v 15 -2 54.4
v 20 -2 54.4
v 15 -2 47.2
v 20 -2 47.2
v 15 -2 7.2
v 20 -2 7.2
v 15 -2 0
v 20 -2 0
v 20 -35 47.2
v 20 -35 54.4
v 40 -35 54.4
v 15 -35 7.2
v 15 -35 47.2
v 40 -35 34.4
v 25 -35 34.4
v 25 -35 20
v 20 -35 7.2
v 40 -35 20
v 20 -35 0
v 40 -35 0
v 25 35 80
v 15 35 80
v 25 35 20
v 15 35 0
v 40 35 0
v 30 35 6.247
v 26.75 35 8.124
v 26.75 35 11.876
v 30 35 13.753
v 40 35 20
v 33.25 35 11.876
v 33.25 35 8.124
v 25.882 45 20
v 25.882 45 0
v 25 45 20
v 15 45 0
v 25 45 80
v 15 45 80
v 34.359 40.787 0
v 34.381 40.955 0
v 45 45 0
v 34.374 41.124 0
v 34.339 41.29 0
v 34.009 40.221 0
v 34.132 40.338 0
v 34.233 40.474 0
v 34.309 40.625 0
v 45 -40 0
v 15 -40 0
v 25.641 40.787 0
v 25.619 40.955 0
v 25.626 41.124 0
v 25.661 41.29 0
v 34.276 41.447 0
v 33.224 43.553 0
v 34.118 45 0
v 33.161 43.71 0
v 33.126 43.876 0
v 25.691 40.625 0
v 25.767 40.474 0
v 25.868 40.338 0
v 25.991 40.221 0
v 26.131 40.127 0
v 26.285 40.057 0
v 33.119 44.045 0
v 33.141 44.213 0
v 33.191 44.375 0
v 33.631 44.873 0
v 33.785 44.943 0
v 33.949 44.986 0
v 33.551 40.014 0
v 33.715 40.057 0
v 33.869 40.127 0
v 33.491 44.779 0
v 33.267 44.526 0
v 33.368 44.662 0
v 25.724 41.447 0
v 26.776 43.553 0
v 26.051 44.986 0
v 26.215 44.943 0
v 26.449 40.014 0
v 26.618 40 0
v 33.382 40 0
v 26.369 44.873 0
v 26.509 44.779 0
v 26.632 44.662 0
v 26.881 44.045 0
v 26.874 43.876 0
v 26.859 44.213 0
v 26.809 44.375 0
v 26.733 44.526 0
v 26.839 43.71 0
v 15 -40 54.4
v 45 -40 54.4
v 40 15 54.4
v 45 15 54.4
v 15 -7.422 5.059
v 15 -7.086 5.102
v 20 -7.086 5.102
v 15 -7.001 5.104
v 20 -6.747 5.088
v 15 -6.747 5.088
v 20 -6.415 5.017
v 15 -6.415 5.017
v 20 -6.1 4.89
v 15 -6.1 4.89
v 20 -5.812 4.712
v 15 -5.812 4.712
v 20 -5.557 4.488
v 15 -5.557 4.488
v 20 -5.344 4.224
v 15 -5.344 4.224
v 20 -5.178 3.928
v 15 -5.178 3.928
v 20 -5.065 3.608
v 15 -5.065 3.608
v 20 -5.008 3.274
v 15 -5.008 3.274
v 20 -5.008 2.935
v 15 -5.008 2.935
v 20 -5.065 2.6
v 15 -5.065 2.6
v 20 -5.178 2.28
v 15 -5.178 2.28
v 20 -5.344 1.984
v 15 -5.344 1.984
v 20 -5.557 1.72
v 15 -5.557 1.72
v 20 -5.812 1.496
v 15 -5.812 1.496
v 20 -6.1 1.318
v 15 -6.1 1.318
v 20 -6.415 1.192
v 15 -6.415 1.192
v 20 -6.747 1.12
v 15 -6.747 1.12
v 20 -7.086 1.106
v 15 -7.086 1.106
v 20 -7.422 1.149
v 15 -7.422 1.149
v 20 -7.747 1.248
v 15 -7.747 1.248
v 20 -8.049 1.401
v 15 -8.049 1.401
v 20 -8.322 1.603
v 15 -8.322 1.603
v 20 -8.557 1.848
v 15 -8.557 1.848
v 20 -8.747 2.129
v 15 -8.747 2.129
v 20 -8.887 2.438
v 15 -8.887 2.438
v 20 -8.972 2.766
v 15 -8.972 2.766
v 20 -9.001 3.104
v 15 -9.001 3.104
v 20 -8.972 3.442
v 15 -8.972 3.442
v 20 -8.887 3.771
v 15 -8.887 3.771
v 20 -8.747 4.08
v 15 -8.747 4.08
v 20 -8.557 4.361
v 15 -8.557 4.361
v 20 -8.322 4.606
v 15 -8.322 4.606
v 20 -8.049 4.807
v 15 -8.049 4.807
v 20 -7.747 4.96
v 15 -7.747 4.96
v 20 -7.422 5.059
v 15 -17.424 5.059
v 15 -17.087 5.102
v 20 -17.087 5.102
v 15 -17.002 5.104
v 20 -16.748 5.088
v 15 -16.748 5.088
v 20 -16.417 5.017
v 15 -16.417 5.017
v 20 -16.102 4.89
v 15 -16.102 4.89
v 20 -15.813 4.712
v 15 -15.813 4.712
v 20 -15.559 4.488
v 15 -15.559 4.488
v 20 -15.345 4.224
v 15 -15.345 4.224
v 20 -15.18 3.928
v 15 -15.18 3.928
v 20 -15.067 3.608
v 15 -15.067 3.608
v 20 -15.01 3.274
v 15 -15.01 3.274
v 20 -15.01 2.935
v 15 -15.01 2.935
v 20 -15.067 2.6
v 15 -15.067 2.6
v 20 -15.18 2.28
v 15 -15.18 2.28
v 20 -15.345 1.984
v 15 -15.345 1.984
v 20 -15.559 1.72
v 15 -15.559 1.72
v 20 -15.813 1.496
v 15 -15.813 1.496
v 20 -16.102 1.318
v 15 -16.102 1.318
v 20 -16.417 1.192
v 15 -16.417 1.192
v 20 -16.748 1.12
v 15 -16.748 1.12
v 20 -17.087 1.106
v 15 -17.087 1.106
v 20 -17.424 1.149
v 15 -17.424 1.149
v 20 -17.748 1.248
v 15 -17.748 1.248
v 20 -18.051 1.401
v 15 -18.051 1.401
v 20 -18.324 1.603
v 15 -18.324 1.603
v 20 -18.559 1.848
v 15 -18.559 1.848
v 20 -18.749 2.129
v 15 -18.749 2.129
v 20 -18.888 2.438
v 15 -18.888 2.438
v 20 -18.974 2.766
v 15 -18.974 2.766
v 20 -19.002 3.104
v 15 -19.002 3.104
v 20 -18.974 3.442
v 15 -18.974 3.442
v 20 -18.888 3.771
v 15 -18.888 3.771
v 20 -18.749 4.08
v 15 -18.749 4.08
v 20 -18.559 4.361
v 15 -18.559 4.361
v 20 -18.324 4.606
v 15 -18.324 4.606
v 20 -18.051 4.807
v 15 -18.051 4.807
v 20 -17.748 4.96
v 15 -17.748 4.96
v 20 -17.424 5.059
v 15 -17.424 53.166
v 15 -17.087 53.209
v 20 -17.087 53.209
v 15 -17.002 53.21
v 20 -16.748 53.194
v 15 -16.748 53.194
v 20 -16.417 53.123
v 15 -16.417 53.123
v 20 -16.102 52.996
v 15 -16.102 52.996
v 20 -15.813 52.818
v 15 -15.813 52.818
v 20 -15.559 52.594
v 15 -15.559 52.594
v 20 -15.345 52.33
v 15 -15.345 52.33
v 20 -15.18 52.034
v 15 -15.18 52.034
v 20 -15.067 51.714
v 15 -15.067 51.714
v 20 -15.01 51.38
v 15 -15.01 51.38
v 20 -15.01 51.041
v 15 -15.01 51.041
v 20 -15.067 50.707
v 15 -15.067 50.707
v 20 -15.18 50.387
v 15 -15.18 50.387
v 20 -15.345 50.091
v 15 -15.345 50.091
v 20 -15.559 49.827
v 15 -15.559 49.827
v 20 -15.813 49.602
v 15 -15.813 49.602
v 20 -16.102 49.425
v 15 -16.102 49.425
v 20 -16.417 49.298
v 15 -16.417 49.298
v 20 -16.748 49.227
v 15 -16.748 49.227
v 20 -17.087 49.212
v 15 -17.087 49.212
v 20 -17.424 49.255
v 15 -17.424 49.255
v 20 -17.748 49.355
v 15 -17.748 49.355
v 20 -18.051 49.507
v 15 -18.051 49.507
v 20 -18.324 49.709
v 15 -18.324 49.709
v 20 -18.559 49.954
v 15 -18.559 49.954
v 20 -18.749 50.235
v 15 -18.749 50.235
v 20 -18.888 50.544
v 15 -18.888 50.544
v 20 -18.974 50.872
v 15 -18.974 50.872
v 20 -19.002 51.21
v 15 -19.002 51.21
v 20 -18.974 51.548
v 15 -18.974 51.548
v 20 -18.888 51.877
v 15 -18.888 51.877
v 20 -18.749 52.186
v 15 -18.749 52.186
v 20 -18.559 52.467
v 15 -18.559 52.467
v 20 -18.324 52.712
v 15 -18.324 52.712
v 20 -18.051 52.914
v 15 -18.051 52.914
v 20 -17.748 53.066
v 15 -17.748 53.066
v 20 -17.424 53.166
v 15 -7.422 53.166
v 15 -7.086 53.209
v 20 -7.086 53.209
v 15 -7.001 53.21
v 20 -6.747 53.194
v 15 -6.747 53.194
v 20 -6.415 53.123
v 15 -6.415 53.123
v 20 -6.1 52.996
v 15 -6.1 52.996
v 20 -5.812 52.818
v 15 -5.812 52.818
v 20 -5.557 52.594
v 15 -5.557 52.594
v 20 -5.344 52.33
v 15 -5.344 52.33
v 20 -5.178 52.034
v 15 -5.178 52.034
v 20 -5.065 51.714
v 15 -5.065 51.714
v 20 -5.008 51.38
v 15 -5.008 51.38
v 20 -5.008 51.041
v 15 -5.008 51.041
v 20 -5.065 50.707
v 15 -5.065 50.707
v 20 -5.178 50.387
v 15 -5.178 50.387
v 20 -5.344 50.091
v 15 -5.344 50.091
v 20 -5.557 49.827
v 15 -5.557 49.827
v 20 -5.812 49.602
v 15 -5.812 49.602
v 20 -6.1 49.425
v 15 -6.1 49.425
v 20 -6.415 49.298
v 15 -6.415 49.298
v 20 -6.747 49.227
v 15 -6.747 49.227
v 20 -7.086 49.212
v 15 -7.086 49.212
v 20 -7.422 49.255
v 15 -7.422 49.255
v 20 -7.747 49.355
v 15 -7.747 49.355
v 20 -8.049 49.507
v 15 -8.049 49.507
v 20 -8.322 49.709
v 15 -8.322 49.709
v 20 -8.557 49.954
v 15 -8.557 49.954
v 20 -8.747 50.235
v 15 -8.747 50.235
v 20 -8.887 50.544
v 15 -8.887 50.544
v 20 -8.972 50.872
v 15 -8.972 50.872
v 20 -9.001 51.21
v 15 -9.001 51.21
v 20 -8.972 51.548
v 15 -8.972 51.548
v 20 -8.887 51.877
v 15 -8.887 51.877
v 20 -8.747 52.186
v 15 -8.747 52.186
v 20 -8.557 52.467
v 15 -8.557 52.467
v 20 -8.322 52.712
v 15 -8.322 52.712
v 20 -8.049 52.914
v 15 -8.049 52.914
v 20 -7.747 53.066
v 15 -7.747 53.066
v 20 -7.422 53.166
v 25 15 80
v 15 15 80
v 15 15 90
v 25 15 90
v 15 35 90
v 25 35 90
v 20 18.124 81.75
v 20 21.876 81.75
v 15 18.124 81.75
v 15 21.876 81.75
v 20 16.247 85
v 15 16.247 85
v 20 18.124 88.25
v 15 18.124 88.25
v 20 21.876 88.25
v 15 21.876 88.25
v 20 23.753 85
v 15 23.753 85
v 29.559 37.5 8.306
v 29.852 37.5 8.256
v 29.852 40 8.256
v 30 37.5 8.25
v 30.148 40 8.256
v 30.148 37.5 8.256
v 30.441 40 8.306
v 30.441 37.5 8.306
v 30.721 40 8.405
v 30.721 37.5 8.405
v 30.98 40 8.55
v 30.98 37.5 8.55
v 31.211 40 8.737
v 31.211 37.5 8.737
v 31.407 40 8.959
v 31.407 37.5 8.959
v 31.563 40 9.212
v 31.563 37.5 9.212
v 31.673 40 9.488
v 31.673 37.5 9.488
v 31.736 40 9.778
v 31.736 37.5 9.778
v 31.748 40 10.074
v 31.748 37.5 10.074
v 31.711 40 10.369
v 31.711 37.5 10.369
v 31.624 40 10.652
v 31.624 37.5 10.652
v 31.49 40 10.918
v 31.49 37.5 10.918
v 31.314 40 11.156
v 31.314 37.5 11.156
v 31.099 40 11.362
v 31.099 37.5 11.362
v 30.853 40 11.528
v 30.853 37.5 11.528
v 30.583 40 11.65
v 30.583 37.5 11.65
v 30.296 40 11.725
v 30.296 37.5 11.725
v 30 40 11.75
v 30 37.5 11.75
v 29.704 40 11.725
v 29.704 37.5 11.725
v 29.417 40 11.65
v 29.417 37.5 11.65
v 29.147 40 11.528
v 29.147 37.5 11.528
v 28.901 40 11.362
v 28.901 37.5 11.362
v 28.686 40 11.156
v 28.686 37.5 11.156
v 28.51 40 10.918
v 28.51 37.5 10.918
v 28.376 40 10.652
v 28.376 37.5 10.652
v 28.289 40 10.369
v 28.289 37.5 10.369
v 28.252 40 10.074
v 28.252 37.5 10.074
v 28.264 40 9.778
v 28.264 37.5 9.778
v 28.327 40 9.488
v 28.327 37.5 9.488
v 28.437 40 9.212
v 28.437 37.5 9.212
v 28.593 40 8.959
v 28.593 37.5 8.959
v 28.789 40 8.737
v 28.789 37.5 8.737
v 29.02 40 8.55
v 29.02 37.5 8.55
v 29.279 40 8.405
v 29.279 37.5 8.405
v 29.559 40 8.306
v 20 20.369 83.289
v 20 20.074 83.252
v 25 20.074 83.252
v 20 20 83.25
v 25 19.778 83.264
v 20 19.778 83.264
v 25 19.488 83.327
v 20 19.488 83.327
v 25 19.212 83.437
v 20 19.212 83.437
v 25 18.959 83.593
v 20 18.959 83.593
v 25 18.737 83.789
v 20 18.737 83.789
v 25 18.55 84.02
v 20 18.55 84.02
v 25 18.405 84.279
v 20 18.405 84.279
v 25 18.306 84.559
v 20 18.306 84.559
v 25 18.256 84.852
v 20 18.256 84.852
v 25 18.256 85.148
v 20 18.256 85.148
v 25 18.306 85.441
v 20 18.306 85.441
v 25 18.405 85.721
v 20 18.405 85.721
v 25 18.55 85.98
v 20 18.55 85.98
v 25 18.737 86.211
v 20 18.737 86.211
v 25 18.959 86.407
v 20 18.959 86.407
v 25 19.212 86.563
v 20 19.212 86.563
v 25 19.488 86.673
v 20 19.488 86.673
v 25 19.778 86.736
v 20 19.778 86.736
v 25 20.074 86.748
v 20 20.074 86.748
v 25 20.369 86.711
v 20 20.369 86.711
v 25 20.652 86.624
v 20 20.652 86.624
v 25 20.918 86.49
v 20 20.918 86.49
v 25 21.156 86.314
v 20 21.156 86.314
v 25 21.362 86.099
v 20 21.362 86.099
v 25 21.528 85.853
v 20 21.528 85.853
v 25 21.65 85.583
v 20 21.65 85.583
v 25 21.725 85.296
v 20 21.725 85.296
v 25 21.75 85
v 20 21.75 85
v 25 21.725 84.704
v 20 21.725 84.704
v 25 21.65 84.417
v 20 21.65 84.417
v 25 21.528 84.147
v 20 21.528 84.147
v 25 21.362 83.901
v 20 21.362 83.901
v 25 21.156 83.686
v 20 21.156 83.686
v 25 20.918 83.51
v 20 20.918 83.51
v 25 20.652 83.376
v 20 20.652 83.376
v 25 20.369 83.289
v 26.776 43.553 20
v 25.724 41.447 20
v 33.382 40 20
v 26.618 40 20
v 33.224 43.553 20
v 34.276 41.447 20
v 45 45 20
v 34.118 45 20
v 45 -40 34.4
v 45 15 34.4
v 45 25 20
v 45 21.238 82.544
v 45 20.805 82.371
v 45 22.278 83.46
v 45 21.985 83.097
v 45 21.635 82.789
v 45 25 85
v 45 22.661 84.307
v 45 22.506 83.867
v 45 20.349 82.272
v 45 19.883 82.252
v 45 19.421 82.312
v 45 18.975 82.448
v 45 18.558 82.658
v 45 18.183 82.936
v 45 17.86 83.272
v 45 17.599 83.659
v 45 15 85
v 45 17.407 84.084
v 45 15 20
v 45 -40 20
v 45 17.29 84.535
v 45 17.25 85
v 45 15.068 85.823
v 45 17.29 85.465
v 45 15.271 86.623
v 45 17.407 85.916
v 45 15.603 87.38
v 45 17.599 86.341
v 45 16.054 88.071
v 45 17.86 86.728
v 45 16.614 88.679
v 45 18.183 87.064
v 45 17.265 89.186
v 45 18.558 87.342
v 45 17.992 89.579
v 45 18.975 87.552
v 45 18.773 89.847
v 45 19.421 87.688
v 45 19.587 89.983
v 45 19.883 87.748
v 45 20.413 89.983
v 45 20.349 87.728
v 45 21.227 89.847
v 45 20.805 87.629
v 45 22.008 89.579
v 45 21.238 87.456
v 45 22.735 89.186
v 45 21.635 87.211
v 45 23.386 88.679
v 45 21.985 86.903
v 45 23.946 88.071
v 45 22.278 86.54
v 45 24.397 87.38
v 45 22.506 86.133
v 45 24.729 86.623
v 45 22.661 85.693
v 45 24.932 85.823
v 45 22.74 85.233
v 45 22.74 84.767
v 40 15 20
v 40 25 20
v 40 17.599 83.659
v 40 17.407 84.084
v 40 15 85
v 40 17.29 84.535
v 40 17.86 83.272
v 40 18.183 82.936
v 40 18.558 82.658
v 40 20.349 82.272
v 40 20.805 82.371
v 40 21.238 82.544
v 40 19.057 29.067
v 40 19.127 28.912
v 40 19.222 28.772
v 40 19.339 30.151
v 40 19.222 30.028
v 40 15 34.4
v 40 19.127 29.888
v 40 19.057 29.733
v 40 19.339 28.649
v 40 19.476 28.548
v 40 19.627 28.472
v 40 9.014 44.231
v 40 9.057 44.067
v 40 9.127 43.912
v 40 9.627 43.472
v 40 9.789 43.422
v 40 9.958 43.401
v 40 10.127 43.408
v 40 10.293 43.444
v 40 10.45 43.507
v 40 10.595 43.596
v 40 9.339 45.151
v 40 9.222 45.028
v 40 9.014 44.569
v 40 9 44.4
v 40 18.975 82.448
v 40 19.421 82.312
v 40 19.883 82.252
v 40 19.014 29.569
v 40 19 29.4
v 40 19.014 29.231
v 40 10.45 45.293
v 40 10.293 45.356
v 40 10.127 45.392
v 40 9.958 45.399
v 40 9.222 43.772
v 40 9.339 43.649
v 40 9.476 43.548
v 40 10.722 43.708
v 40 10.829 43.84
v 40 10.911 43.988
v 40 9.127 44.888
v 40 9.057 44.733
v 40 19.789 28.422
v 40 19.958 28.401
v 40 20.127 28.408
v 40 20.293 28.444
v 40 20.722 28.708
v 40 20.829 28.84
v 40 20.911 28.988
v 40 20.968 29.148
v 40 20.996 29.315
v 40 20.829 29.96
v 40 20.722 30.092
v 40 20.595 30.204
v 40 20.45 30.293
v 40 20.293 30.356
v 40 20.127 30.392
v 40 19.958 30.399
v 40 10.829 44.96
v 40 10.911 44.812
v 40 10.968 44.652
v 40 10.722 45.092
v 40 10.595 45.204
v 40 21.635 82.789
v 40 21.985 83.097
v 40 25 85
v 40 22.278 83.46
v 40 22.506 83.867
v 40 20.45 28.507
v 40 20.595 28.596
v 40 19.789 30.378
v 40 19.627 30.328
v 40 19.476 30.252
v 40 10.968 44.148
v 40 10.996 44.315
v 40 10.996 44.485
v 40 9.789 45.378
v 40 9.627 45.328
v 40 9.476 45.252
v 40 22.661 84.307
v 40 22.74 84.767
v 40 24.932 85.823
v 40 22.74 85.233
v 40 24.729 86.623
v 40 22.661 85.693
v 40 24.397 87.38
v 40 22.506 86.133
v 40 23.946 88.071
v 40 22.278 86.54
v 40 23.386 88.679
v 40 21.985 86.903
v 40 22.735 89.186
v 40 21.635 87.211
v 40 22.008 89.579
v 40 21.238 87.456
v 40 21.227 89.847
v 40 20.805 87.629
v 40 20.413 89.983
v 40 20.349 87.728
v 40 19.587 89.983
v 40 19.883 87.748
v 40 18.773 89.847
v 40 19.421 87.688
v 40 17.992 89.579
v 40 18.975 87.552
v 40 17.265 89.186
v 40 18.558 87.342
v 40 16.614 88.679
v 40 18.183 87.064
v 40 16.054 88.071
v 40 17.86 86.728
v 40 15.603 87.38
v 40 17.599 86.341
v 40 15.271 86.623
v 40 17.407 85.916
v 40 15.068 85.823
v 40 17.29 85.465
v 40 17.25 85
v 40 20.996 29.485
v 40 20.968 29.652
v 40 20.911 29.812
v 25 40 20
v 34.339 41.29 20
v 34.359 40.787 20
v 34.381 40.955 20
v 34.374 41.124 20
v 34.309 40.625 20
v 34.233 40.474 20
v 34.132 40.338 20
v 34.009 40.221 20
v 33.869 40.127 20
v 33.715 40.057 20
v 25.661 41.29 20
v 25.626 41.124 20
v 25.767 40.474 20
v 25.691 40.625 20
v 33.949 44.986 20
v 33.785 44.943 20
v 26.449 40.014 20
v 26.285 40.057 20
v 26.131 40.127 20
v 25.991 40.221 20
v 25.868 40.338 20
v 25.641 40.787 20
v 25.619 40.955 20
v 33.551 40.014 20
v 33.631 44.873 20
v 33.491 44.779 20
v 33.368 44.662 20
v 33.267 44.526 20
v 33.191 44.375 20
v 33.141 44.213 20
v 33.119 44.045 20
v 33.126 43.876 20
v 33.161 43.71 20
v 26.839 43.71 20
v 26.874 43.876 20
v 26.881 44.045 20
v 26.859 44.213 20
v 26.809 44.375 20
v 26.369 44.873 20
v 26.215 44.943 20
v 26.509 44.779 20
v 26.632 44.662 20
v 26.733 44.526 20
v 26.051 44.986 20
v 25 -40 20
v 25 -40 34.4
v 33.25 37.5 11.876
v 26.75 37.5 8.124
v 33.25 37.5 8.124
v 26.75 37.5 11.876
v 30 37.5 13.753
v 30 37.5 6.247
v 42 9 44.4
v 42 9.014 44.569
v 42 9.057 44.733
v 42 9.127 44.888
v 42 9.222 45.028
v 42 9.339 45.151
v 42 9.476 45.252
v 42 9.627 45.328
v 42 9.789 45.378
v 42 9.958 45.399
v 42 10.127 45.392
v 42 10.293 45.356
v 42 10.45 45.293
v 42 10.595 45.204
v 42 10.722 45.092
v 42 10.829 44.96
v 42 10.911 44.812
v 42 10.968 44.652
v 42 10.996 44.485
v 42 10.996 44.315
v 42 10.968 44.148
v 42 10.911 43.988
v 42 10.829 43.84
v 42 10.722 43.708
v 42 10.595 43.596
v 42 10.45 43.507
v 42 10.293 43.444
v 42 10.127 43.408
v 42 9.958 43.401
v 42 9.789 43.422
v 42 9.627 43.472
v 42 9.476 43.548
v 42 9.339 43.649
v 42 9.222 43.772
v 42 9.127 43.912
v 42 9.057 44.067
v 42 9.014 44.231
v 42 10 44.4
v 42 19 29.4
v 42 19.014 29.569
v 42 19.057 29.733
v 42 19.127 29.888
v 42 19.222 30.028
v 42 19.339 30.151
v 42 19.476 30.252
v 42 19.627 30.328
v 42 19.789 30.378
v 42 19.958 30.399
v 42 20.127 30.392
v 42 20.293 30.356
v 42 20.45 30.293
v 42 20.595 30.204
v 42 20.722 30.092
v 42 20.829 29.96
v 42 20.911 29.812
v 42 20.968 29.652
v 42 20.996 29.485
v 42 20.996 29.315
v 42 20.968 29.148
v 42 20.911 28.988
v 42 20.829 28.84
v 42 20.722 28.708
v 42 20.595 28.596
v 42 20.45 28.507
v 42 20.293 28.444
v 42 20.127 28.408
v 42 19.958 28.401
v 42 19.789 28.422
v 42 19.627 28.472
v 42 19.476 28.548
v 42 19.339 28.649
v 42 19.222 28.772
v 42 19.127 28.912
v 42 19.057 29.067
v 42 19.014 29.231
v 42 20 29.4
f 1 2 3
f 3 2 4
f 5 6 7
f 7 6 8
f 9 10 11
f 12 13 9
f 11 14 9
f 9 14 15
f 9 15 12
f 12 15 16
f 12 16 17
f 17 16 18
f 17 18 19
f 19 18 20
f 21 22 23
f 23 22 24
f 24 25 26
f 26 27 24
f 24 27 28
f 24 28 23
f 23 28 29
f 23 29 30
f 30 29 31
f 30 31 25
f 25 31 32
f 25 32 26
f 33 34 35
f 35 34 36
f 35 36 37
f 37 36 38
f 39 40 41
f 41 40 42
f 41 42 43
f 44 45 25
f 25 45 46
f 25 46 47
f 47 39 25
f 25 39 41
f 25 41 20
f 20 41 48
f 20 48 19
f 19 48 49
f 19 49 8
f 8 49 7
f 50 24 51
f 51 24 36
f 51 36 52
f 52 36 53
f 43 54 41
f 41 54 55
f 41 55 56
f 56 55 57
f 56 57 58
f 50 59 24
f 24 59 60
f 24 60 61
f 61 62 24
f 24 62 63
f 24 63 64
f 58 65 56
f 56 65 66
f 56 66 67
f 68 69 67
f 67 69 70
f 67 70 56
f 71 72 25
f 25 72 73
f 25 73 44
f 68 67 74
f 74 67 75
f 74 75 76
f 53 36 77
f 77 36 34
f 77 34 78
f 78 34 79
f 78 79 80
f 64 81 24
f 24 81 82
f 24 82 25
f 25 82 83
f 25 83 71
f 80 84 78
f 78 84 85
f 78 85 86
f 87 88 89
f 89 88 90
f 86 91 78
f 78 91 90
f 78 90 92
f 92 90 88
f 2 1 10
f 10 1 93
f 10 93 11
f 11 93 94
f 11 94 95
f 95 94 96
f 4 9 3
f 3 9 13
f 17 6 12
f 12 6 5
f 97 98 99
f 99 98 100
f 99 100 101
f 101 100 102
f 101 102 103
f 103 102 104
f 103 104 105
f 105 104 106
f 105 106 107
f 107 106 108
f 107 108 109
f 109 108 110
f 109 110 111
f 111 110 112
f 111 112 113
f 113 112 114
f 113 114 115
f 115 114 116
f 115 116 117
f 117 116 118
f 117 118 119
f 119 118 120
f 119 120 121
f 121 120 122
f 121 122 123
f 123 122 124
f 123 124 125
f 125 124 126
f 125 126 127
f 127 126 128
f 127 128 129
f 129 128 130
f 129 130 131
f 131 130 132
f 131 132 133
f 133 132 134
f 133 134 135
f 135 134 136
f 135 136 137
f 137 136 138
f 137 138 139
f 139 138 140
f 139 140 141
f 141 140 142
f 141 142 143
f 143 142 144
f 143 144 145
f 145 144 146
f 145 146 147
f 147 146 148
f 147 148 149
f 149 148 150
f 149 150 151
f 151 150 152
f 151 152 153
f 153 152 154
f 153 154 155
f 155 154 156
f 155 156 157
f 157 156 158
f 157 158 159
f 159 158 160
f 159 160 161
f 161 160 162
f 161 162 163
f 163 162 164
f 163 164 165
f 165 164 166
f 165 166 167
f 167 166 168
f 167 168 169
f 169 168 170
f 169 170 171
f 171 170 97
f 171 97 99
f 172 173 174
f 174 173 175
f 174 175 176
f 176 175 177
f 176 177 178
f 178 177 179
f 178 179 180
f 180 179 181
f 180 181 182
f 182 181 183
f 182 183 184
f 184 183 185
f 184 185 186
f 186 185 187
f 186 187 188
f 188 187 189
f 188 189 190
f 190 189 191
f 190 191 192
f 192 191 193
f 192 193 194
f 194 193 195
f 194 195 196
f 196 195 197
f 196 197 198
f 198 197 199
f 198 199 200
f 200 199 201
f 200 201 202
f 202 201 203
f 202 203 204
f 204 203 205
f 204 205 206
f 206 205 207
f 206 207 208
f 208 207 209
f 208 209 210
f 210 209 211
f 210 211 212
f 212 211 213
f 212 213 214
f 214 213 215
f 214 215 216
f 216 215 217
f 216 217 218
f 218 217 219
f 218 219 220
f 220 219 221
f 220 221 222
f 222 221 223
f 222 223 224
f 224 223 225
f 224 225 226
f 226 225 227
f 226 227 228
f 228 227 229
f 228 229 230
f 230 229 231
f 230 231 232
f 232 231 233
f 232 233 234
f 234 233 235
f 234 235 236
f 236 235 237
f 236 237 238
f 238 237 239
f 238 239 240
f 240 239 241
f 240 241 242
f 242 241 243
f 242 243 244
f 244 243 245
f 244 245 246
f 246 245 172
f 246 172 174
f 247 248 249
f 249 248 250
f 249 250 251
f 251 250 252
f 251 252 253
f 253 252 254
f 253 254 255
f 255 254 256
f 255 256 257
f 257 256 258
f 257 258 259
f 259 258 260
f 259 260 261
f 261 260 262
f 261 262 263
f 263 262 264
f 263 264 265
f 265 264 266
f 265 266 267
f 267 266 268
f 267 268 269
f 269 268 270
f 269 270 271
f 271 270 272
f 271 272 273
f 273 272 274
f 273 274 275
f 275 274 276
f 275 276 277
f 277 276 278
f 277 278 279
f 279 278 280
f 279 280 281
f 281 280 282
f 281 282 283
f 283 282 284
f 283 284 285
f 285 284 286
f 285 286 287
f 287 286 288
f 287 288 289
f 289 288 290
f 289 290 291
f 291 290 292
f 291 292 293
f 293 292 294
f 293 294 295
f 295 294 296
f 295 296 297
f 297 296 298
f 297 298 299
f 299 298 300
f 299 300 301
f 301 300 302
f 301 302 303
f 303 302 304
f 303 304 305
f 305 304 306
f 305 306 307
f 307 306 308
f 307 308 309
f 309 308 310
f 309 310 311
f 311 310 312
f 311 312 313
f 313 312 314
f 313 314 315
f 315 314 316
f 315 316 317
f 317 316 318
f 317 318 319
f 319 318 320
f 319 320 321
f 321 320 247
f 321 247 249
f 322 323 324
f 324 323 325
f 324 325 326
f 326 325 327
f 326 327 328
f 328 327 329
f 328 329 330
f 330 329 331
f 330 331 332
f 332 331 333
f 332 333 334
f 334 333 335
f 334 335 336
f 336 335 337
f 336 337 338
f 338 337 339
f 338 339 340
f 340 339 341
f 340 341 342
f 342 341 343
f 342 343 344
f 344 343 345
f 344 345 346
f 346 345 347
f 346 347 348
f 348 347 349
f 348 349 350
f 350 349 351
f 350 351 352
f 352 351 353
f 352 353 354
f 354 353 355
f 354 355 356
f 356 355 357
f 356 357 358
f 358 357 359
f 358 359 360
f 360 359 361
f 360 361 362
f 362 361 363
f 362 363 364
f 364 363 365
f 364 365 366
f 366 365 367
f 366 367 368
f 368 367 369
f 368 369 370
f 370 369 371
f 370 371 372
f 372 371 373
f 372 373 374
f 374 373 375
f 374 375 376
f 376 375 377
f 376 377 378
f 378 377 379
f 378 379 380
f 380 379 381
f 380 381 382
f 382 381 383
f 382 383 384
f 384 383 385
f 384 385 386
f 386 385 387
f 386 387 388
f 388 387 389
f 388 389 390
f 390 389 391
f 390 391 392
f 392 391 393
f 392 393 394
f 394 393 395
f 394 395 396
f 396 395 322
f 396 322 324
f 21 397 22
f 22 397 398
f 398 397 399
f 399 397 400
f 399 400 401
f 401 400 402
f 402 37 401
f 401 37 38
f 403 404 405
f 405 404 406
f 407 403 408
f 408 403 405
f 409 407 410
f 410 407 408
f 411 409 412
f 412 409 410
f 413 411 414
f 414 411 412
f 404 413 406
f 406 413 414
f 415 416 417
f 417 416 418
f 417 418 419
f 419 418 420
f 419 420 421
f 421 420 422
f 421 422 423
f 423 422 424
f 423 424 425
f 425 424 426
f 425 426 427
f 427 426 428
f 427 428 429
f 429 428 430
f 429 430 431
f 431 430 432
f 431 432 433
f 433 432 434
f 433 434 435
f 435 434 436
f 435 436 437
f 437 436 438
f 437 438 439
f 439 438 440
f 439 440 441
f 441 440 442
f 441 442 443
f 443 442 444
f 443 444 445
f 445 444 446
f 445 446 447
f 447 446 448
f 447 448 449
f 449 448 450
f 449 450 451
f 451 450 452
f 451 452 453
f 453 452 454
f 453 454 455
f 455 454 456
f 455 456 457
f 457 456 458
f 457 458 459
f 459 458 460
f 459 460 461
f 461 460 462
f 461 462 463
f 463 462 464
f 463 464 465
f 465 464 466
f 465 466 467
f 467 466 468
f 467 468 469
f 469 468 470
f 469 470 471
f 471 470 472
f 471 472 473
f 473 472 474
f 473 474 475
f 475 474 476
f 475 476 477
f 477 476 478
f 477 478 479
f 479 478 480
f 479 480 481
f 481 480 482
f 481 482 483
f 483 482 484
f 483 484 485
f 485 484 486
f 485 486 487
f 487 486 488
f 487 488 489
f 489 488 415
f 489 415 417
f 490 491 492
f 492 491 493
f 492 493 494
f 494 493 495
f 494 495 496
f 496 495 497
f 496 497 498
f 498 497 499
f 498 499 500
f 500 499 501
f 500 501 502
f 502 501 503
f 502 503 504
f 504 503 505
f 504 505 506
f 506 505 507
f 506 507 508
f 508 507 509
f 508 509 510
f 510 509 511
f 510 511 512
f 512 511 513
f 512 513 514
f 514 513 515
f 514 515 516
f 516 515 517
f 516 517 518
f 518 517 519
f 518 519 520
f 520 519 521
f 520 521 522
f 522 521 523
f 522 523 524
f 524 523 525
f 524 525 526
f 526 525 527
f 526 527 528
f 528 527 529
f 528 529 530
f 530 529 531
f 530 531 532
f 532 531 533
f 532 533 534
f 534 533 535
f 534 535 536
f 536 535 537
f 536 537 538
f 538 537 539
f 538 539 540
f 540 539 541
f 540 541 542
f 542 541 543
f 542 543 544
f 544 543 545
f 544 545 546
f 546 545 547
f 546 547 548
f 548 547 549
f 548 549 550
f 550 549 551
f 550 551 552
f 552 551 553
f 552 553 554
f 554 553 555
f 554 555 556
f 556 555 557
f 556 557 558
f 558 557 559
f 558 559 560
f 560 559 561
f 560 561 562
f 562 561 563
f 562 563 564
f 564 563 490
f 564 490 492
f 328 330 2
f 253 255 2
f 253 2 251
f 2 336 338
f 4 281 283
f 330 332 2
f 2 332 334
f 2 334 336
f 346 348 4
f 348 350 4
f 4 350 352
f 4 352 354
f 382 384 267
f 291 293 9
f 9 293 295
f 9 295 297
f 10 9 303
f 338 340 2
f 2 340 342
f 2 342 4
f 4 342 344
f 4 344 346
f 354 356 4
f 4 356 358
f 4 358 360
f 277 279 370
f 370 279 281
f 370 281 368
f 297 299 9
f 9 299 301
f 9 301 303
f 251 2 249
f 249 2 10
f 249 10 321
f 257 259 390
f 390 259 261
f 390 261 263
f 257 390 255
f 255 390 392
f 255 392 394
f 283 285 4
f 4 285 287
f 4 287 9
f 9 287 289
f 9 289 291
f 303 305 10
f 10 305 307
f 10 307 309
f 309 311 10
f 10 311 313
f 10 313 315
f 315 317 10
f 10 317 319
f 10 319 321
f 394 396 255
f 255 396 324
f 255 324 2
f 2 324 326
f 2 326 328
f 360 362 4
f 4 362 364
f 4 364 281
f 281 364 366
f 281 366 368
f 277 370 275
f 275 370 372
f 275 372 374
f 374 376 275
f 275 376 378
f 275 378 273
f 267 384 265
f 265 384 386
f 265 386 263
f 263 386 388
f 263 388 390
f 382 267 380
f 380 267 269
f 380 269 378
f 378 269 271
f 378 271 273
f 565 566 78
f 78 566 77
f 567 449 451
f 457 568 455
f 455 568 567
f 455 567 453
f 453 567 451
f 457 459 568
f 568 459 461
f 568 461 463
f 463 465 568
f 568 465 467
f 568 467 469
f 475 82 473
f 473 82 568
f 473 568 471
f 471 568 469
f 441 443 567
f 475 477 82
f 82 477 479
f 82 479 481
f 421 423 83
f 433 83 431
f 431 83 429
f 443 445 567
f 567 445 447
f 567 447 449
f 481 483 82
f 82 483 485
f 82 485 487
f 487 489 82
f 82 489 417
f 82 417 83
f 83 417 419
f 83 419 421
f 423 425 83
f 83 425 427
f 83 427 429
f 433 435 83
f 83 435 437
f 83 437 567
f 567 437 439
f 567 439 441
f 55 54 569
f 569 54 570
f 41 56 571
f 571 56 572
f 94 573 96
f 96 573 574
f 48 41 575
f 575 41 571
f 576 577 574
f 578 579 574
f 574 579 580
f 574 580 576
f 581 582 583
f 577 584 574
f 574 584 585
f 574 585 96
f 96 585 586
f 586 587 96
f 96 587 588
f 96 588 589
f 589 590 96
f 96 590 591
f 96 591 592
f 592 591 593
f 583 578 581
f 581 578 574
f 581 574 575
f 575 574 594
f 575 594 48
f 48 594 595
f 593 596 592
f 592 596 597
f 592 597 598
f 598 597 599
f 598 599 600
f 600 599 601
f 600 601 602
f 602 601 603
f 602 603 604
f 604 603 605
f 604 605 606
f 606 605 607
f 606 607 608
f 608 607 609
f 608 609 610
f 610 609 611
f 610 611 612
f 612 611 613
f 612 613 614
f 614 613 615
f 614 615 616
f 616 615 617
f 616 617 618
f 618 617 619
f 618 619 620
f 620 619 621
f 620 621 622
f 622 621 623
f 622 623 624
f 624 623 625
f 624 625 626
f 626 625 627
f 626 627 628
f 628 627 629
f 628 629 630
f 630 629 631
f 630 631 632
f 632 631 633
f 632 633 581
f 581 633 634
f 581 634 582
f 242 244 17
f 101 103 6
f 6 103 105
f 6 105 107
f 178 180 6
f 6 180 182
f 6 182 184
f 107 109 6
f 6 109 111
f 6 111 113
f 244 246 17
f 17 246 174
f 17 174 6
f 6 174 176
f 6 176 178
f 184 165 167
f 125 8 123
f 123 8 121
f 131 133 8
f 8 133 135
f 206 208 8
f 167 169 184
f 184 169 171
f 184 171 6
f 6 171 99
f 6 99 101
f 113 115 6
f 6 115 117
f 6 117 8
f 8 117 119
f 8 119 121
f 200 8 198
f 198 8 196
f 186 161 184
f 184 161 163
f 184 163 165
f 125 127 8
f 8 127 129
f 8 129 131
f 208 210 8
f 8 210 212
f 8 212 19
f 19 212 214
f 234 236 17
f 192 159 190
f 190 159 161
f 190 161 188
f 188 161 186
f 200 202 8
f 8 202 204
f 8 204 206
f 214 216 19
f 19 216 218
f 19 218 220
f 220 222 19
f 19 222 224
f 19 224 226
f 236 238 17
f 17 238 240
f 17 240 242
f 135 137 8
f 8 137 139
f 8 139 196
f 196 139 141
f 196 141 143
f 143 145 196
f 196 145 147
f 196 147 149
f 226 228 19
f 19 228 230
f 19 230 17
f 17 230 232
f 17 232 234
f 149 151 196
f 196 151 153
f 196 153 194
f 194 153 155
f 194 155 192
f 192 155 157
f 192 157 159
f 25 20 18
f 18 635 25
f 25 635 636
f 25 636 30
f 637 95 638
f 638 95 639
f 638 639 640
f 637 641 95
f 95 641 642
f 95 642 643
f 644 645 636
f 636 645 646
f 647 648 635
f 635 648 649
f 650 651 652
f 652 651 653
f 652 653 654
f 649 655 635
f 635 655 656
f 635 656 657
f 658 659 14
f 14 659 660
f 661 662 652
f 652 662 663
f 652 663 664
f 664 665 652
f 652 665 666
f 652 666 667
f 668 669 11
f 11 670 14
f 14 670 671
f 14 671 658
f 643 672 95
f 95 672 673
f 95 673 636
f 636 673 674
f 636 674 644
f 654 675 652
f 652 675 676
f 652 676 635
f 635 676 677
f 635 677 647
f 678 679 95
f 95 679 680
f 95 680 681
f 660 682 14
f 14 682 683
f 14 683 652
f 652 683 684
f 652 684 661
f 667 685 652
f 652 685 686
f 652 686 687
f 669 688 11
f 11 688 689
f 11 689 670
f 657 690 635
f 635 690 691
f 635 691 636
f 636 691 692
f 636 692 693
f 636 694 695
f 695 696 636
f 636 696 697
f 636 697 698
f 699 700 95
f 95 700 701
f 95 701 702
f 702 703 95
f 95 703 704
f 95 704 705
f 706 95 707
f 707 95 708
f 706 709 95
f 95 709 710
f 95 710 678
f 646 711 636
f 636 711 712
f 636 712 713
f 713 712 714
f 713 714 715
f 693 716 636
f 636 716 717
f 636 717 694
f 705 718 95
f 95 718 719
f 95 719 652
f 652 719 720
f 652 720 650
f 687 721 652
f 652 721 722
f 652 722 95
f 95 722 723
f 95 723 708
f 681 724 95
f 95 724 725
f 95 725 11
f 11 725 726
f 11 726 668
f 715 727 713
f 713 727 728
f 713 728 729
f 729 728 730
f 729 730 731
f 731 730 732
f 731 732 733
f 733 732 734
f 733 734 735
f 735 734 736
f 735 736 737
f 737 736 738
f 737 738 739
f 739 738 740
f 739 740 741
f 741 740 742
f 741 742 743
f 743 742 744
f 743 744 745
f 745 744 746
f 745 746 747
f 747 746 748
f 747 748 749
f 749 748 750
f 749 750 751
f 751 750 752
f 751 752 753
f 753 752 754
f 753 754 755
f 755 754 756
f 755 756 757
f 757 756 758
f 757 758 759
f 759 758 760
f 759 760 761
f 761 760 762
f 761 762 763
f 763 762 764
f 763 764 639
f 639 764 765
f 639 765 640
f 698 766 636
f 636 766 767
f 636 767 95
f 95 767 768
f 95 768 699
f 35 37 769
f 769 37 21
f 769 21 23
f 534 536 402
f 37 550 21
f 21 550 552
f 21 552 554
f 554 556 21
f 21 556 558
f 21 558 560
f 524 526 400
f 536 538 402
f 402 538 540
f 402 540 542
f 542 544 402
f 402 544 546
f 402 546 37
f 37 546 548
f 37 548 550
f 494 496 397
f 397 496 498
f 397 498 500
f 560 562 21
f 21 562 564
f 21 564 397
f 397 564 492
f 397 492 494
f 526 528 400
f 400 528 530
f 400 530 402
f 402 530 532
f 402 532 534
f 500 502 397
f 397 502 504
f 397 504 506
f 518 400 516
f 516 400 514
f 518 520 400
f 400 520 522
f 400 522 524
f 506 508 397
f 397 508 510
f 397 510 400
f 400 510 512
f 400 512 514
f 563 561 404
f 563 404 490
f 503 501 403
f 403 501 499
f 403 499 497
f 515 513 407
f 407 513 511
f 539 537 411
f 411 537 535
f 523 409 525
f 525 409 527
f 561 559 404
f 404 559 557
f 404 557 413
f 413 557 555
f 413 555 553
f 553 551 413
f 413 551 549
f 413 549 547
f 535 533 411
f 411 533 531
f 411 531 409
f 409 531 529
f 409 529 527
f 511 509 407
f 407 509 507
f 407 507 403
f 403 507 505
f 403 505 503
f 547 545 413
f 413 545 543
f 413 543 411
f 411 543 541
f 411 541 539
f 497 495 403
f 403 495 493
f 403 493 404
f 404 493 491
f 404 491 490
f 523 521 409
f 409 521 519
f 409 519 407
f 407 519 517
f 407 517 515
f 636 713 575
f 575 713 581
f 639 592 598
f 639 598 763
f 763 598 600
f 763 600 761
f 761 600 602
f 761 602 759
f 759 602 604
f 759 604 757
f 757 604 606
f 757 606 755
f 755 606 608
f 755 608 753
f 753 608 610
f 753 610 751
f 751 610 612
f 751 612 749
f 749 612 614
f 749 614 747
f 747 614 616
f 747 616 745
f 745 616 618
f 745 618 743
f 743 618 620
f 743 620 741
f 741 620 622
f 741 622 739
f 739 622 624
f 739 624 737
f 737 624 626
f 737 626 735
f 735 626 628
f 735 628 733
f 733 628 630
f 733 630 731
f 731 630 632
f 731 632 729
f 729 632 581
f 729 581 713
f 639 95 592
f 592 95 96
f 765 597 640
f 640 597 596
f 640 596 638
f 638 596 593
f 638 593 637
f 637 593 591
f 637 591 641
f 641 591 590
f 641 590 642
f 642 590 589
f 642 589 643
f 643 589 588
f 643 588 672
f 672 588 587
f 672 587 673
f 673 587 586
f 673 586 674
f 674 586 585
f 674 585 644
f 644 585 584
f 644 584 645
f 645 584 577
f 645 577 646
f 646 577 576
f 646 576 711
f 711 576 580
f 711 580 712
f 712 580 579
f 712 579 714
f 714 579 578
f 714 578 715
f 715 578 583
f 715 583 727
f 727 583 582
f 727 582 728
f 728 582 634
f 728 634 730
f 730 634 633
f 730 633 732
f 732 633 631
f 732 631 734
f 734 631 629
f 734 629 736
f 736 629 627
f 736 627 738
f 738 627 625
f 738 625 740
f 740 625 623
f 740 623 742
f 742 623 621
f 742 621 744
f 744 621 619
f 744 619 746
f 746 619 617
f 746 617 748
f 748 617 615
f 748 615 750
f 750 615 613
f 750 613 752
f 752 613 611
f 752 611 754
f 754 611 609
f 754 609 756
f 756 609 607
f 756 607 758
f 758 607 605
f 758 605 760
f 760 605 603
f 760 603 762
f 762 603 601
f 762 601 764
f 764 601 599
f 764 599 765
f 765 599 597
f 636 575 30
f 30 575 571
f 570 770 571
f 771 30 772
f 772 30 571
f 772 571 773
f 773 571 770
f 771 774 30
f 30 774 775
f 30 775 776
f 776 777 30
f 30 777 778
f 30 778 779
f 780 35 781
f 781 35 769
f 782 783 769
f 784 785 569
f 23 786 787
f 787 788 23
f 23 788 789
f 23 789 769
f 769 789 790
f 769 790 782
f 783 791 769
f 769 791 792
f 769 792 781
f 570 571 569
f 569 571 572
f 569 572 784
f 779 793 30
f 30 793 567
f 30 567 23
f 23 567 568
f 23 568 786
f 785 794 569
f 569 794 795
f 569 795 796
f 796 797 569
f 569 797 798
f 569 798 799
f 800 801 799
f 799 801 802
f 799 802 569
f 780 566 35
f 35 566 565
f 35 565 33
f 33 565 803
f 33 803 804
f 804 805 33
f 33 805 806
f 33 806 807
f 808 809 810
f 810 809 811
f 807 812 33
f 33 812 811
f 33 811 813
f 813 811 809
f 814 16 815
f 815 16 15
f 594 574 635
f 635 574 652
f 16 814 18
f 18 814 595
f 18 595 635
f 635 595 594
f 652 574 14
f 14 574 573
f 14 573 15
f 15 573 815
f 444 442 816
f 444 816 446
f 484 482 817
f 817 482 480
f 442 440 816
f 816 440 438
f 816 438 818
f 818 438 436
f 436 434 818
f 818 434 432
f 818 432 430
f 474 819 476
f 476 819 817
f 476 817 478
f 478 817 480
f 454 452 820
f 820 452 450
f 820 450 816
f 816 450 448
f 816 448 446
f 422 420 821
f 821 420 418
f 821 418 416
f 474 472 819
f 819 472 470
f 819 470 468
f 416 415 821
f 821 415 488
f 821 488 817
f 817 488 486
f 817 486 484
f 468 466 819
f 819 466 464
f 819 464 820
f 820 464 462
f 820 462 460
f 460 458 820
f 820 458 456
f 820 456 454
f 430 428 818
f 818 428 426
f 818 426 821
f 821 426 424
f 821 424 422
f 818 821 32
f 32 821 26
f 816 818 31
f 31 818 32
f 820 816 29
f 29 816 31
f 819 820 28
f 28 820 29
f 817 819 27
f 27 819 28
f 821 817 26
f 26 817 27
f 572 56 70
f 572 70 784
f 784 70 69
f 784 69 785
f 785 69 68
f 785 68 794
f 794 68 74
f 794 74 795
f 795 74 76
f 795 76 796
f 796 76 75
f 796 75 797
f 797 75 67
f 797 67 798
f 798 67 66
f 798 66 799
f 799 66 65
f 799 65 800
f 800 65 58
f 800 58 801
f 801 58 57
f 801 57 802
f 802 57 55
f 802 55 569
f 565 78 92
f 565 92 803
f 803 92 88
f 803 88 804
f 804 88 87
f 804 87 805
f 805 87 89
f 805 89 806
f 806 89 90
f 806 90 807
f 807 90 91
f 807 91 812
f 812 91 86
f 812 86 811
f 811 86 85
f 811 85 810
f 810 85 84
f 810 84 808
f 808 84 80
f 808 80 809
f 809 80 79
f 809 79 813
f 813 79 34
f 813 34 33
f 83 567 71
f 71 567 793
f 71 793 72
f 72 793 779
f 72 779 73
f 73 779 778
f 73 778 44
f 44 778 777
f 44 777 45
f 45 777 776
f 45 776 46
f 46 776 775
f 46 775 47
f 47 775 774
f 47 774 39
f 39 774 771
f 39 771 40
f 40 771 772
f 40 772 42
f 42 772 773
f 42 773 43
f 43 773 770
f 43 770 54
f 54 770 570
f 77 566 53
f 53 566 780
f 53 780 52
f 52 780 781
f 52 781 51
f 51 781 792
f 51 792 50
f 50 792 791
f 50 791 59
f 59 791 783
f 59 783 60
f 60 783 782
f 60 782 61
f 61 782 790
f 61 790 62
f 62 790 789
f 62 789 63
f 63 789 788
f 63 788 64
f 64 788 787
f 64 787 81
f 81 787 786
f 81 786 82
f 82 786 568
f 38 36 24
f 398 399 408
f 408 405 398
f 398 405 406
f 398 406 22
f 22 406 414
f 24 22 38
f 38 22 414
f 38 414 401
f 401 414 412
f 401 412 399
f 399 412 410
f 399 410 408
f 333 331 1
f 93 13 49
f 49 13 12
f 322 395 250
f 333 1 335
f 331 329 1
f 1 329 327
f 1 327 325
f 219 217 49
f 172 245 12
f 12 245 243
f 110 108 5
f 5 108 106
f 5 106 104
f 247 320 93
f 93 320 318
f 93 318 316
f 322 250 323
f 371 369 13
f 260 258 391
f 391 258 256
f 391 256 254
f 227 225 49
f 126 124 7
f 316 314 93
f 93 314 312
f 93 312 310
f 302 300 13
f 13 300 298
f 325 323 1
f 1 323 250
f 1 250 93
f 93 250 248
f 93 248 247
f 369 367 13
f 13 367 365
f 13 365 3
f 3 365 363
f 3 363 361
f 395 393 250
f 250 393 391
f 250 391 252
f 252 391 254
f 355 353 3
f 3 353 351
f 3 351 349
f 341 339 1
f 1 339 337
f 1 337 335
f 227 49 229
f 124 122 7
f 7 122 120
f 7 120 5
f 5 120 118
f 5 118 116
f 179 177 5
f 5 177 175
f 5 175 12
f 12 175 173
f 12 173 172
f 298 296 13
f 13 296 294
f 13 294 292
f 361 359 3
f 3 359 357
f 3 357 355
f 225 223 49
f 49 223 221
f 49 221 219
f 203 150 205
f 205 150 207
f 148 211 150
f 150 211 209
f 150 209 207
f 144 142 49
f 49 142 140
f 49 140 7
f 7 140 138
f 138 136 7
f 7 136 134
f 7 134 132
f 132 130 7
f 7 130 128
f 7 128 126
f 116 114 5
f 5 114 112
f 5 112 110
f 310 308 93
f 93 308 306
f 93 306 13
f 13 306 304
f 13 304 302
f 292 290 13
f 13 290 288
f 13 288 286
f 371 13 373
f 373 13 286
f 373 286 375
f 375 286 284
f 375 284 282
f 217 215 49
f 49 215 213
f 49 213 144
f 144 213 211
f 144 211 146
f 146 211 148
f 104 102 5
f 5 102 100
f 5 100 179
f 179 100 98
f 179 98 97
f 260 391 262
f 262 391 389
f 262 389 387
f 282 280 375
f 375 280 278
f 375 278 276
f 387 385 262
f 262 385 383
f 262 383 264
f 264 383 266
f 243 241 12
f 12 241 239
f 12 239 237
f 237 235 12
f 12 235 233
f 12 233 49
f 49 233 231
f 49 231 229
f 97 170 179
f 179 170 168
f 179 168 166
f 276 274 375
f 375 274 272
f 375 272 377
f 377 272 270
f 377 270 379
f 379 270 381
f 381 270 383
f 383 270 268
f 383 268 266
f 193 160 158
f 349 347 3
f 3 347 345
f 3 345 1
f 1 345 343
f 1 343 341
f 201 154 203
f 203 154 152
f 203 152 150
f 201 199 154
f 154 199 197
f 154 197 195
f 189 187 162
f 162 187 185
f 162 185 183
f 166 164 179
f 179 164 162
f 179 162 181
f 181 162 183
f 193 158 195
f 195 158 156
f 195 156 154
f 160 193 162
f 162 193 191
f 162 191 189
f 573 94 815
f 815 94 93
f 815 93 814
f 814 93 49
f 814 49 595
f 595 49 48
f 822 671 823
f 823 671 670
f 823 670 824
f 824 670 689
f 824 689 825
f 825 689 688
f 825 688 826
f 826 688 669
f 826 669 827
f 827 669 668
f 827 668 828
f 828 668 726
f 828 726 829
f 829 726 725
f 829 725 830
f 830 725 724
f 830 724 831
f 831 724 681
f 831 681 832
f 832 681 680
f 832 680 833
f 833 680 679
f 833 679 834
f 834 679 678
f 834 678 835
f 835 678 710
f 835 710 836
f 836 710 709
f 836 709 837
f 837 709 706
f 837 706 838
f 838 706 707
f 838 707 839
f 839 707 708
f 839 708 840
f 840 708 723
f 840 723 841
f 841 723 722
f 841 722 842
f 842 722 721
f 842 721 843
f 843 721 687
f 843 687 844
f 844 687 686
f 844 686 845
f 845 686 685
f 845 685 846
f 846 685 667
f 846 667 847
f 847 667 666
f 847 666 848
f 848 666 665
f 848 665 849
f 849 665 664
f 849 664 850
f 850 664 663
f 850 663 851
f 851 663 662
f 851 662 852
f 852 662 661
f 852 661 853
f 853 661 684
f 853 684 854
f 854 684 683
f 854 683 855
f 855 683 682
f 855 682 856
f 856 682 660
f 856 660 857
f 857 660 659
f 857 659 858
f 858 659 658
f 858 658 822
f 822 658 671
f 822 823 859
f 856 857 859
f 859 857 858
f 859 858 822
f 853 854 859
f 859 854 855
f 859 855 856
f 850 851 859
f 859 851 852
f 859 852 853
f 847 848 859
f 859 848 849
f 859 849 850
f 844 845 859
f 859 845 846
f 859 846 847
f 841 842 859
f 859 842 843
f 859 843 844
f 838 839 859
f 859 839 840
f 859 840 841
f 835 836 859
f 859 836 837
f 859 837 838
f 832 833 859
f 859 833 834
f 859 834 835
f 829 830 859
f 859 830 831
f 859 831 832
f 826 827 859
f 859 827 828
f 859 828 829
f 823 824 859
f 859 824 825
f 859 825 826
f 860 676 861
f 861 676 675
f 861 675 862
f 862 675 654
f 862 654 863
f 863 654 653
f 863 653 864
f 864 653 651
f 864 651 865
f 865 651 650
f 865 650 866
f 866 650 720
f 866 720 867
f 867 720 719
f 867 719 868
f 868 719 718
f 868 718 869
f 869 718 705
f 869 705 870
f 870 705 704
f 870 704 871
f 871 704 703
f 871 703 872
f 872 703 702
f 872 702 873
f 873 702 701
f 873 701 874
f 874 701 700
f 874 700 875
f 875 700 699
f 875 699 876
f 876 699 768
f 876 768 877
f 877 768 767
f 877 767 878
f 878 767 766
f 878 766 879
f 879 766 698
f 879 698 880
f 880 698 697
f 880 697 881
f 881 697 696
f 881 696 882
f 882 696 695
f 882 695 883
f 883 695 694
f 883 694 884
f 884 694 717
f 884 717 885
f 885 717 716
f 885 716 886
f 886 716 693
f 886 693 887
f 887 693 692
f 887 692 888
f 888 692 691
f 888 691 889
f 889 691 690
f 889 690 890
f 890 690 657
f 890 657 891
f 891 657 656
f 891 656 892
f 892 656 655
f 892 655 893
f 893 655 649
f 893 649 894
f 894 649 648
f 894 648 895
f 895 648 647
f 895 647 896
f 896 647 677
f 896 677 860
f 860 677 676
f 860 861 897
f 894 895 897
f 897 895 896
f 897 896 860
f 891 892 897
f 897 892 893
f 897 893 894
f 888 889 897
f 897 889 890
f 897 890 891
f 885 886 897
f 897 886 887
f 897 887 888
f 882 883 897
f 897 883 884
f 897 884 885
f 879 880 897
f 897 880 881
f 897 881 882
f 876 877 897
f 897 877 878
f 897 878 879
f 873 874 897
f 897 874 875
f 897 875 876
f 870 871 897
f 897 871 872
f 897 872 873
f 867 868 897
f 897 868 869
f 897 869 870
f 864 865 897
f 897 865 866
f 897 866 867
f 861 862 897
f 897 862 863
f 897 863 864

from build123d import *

# Parameters (mm, degrees)
ESBO_O1_W                   = 5
ESBO_O1_H                   = 33
RESSALTO_EXTRUS_O1_DEPTH    = 80
ESBO_O2_W                   = 40
ESBO_O2_H                   = 33
ESBO_O2_W_2                 = 25.6
CORTE_EXTRUS_O1_DEPTH       = 19
ESBO_O4_R                   = 2
CORTE_EXTRUS_O3_DEPTH       = 12
ESBO_O5_W                   = 10
ESBO_O5_H                   = 20
RESSALTO_EXTRUS_O2_DEPTH    = 10
ESBO_O6_R                   = 1.75
CORTE_EXTRUS_O4_DEPTH       = 15
CORTE_EXTRUS_O5_DEPTH       = 5
ESBO_O8_R                   = 5
ESBO_O8_R_2                 = 2.75
RESSALTO_EXTRUS_O3_DEPTH    = 5
ESBO_O9_W                   = 20
ESBO_O9_H                   = 20
ESBO_O9_W_2                 = 25
ESBO_O9_H_2                 = 10
CORTE_EXTRUS_O6_DEPTH       = 25.6
CORTE_EXTRUS_O7_START       = -20
ESBO_O11_W                  = 34.4
ESBO_O11_H                  = 20
ESBO_O11_W_2                = 14.4
ESBO_O11_H_2                = 60
CORTE_EXTRUS_O7_DEPTH       = 20
ESBO_O12_R                  = 1.75
CORTE_EXTRUS_O8_DEPTH       = 25
CORTE_EXTRUS_O9_DEPTH       = 2.5
FILETE1_R                   = 1
FILETE2_R                   = 1
CORTE_EXTRUS_O10_DEPTH      = 74
CORTE_EXTRUS_O10_DEPTH_BACK = 84
ESBO_O14_W                  = 30
ESBO_O14_H                  = 90
ESBO_O15_W                  = 30
ESBO_O15_H                  = 5
CORTE_EXTRUS_O11_DEPTH      = 120
ESBO_O16_R                  = 1
CORTE_EXTRUS_O12_DEPTH      = 2


with BuildPart() as part:
    # Esboço1 → Ressalto-extrusão1 (new body)
    with BuildSketch(Plane.XY):
        Polygon((-2.5, 45), (-15, 45), (-15, 35), (-10, 35), (15, 35), (15, 45), (2.5, 45), (5, 40), (-5, 40), align=None)
        Polygon((-10, 35), (-15, 35), (-15, -45), (-10, -45), (-10, -35), align=None)
        Polygon((-10, -35), (-10, -45), (15, -45), (15, -35), (10, -35), align=None)
        with Locations((12.5, -18.5)):
            Rectangle(ESBO_O1_W, ESBO_O1_H)
    extrude(amount=RESSALTO_EXTRUS_O1_DEPTH)

    # Esboço2 → Corte-extrusão1 (cut)
    with BuildSketch(Plane(origin=(15, 0, 0), x_dir=(0, 0, -1), z_dir=(1, 0, 0))):
        with Locations((-27.2, -18.5)):
            Rectangle(ESBO_O2_W, ESBO_O2_H)
        with Locations((-67.2, -18.5)):
            Rectangle(ESBO_O2_W_2, ESBO_O2_H)
    extrude(amount=-CORTE_EXTRUS_O1_DEPTH, mode=Mode.SUBTRACT)

    # Esboço4 → Corte-extrusão3 (cut)
    with BuildSketch(Plane.ZY.offset(-10)):
        with Locations(Location((3.104223841, -7.000828192, 0), (0, 0, 270))):
            Circle(ESBO_O4_R)
        with Locations(Location((3.104223841, -17.002484575, 0), (0, 0, 270))):
            Circle(ESBO_O4_R)
        with Locations(Location((51.210481376, -17.002484575, 0), (0, 0, 270))):
            Circle(ESBO_O4_R)
        with Locations(Location((51.210481376, -7.000828192, 0), (0, 0, 270))):
            Circle(ESBO_O4_R)
    extrude(amount=-CORTE_EXTRUS_O3_DEPTH, mode=Mode.SUBTRACT)

    # Esboço5 → Ressalto-extrusão2 (add)
    with BuildSketch(Plane(origin=(15, 0, 0), x_dir=(0, 0, -1), z_dir=(1, 0, 0))):
        with Locations((-85, 25)):
            Rectangle(ESBO_O5_W, ESBO_O5_H)
        Polygon((-90, 35), (-80, 45), (-80, 35), align=None)
    extrude(amount=-RESSALTO_EXTRUS_O2_DEPTH)

    # Esboço6 → Corte-extrusão4 (cut)
    with BuildSketch(Plane(origin=(15, 0, 0), x_dir=(0, 0, -1), z_dir=(1, 0, 0))):
        with Locations(Location((-85, 20, 0), (0, 0, 90))):
            Circle(ESBO_O6_R)
    extrude(amount=-CORTE_EXTRUS_O4_DEPTH, mode=Mode.SUBTRACT)

    # Esboço7 → Corte-extrusão5 (cut)
    with BuildSketch(Plane(origin=(15, 0, 0), x_dir=(0, 0, -1), z_dir=(1, 0, 0))):
        Polygon((-81.75, 21.876388375), (-85, 23.75277675), (-88.25, 21.876388375), (-88.25, 18.123611625), (-85, 16.24722325), (-81.75, 18.123611625), align=None)
    extrude(amount=-CORTE_EXTRUS_O5_DEPTH, mode=Mode.SUBTRACT)

    # Esboço8 → Ressalto-extrusão3 (add)
    # profile 1 of 3: a face of its own
    with BuildSketch(Plane.ZY.offset(15)):
        with BuildLine():
            Line((80, 25), (80, 20.00000004))
            ThreePointArc((80, 20.00000004), (81.464466108, 23.53553392), (85, 25))
            Line((85, 25), (80, 25))
        make_face()
    # profile 2 of 3: a face of its own
    with BuildSketch(Plane.ZY.offset(15)):
        with Locations((85, 20)):
            Circle(ESBO_O8_R)
        with Locations(Location((85, 20, 0), (0, 0, 270))):
            Circle(ESBO_O8_R_2, mode=Mode.SUBTRACT)
    # profile 3 of 3: a face of its own
    with BuildSketch(Plane.ZY.offset(15)):
        with BuildLine():
            Line((80, 15), (85, 15))
            ThreePointArc((85, 15), (81.46446608, 16.464466108), (80, 20.00000004))
            Line((80, 20.00000004), (80, 15))
        make_face()
    extrude(amount=-RESSALTO_EXTRUS_O3_DEPTH)

    # Esboço9 → Corte-extrusão6 (cut)
    with BuildSketch(Plane.XY.offset(80)):
        with Locations((-5, 35)):
            Rectangle(ESBO_O9_W, ESBO_O9_H)
        Polygon((-15, 15), (-15, -45), (-10, -45), (-10, -35), (-10, 15), align=None)
        with Locations((2.5, -40)):
            Rectangle(ESBO_O9_W_2, ESBO_O9_H_2)
    extrude(amount=-CORTE_EXTRUS_O6_DEPTH, mode=Mode.SUBTRACT)

    # Esboço11 → Corte-extrusão7 (cut)
    with BuildSketch(Plane.ZY.offset(15).offset(CORTE_EXTRUS_O7_START)):
        with Locations((37.2, 35)):
            Rectangle(ESBO_O11_W, ESBO_O11_H)
        with Locations((27.2, -15)):
            Rectangle(ESBO_O11_W_2, ESBO_O11_H_2)
    extrude(amount=CORTE_EXTRUS_O7_DEPTH, mode=Mode.SUBTRACT)

    # Esboço12 → Corte-extrusão8 (cut)
    with BuildSketch(Plane(origin=(0, 40, 0), x_dir=(1, 0, 0), z_dir=(0, 1, 0))):
        with Locations(Location((0, -10, 0), (0, 0, 270))):
            Circle(ESBO_O12_R)
    extrude(amount=-CORTE_EXTRUS_O8_DEPTH, mode=Mode.SUBTRACT)

    # Esboço13 → Corte-extrusão9 (cut)
    with BuildSketch(Plane.XZ.offset(-35)):
        Polygon((0, 6.24722325), (3.25, 8.123611625), (3.25, 11.876388375), (0, 13.75277675), (-3.25, 11.876388375), (-3.25, 8.123611625), align=None)
    extrude(amount=-CORTE_EXTRUS_O9_DEPTH, mode=Mode.SUBTRACT)

    # Filete1
    filete1_edges = [part.edges().sort_by_distance(p)[0] for p in [
        (2.5, 45, 10),
        (-2.5, 45, 10),
    ]]
    fillet(filete1_edges, radius=FILETE1_R)

    # Filete2
    filete2_edges = [part.edges().sort_by_distance(p)[0] for p in [
        (-5, 40, 10),
        (5, 40, 10),
    ]]
    fillet(filete2_edges, radius=FILETE2_R)

    # Espelhar1: part across plane


with BuildPart() as part_1:
    add(part.part)
    add(part.part.mirror(Plane(origin=(15, 0, 80), x_dir=(0, 0, 1), z_dir=(1, 0, 0))))

    # Esboço14 → Corte-extrusão10 (cut, two sides: drawn at the far end of the back side and taken through both)
    with BuildSketch(Plane.XY.offset(54.4).offset(-CORTE_EXTRUS_O10_DEPTH_BACK)):
        Rectangle(ESBO_O14_W, ESBO_O14_H)
    extrude(amount=CORTE_EXTRUS_O10_DEPTH + CORTE_EXTRUS_O10_DEPTH_BACK, mode=Mode.SUBTRACT)

    # Esboço15 → Corte-extrusão11 (cut)
    with BuildSketch(Plane.XY.offset(54.4)):
        with Locations((30, -42.5)):
            Rectangle(ESBO_O15_W, ESBO_O15_H)
    extrude(amount=-CORTE_EXTRUS_O11_DEPTH, mode=Mode.SUBTRACT)

    # Esboço16 → Corte-extrusão12 (cut)
    with BuildSketch(Plane.ZY.offset(-40)):
        with Locations(Location((29.4, 20, 0), (0, 0, 270))):
            Circle(ESBO_O16_R)
        with Locations(Location((44.4, 10, 0), (0, 0, 270))):
            Circle(ESBO_O16_R)
    extrude(amount=-CORTE_EXTRUS_O12_DEPTH, mode=Mode.SUBTRACT)


solid = part_1.part
